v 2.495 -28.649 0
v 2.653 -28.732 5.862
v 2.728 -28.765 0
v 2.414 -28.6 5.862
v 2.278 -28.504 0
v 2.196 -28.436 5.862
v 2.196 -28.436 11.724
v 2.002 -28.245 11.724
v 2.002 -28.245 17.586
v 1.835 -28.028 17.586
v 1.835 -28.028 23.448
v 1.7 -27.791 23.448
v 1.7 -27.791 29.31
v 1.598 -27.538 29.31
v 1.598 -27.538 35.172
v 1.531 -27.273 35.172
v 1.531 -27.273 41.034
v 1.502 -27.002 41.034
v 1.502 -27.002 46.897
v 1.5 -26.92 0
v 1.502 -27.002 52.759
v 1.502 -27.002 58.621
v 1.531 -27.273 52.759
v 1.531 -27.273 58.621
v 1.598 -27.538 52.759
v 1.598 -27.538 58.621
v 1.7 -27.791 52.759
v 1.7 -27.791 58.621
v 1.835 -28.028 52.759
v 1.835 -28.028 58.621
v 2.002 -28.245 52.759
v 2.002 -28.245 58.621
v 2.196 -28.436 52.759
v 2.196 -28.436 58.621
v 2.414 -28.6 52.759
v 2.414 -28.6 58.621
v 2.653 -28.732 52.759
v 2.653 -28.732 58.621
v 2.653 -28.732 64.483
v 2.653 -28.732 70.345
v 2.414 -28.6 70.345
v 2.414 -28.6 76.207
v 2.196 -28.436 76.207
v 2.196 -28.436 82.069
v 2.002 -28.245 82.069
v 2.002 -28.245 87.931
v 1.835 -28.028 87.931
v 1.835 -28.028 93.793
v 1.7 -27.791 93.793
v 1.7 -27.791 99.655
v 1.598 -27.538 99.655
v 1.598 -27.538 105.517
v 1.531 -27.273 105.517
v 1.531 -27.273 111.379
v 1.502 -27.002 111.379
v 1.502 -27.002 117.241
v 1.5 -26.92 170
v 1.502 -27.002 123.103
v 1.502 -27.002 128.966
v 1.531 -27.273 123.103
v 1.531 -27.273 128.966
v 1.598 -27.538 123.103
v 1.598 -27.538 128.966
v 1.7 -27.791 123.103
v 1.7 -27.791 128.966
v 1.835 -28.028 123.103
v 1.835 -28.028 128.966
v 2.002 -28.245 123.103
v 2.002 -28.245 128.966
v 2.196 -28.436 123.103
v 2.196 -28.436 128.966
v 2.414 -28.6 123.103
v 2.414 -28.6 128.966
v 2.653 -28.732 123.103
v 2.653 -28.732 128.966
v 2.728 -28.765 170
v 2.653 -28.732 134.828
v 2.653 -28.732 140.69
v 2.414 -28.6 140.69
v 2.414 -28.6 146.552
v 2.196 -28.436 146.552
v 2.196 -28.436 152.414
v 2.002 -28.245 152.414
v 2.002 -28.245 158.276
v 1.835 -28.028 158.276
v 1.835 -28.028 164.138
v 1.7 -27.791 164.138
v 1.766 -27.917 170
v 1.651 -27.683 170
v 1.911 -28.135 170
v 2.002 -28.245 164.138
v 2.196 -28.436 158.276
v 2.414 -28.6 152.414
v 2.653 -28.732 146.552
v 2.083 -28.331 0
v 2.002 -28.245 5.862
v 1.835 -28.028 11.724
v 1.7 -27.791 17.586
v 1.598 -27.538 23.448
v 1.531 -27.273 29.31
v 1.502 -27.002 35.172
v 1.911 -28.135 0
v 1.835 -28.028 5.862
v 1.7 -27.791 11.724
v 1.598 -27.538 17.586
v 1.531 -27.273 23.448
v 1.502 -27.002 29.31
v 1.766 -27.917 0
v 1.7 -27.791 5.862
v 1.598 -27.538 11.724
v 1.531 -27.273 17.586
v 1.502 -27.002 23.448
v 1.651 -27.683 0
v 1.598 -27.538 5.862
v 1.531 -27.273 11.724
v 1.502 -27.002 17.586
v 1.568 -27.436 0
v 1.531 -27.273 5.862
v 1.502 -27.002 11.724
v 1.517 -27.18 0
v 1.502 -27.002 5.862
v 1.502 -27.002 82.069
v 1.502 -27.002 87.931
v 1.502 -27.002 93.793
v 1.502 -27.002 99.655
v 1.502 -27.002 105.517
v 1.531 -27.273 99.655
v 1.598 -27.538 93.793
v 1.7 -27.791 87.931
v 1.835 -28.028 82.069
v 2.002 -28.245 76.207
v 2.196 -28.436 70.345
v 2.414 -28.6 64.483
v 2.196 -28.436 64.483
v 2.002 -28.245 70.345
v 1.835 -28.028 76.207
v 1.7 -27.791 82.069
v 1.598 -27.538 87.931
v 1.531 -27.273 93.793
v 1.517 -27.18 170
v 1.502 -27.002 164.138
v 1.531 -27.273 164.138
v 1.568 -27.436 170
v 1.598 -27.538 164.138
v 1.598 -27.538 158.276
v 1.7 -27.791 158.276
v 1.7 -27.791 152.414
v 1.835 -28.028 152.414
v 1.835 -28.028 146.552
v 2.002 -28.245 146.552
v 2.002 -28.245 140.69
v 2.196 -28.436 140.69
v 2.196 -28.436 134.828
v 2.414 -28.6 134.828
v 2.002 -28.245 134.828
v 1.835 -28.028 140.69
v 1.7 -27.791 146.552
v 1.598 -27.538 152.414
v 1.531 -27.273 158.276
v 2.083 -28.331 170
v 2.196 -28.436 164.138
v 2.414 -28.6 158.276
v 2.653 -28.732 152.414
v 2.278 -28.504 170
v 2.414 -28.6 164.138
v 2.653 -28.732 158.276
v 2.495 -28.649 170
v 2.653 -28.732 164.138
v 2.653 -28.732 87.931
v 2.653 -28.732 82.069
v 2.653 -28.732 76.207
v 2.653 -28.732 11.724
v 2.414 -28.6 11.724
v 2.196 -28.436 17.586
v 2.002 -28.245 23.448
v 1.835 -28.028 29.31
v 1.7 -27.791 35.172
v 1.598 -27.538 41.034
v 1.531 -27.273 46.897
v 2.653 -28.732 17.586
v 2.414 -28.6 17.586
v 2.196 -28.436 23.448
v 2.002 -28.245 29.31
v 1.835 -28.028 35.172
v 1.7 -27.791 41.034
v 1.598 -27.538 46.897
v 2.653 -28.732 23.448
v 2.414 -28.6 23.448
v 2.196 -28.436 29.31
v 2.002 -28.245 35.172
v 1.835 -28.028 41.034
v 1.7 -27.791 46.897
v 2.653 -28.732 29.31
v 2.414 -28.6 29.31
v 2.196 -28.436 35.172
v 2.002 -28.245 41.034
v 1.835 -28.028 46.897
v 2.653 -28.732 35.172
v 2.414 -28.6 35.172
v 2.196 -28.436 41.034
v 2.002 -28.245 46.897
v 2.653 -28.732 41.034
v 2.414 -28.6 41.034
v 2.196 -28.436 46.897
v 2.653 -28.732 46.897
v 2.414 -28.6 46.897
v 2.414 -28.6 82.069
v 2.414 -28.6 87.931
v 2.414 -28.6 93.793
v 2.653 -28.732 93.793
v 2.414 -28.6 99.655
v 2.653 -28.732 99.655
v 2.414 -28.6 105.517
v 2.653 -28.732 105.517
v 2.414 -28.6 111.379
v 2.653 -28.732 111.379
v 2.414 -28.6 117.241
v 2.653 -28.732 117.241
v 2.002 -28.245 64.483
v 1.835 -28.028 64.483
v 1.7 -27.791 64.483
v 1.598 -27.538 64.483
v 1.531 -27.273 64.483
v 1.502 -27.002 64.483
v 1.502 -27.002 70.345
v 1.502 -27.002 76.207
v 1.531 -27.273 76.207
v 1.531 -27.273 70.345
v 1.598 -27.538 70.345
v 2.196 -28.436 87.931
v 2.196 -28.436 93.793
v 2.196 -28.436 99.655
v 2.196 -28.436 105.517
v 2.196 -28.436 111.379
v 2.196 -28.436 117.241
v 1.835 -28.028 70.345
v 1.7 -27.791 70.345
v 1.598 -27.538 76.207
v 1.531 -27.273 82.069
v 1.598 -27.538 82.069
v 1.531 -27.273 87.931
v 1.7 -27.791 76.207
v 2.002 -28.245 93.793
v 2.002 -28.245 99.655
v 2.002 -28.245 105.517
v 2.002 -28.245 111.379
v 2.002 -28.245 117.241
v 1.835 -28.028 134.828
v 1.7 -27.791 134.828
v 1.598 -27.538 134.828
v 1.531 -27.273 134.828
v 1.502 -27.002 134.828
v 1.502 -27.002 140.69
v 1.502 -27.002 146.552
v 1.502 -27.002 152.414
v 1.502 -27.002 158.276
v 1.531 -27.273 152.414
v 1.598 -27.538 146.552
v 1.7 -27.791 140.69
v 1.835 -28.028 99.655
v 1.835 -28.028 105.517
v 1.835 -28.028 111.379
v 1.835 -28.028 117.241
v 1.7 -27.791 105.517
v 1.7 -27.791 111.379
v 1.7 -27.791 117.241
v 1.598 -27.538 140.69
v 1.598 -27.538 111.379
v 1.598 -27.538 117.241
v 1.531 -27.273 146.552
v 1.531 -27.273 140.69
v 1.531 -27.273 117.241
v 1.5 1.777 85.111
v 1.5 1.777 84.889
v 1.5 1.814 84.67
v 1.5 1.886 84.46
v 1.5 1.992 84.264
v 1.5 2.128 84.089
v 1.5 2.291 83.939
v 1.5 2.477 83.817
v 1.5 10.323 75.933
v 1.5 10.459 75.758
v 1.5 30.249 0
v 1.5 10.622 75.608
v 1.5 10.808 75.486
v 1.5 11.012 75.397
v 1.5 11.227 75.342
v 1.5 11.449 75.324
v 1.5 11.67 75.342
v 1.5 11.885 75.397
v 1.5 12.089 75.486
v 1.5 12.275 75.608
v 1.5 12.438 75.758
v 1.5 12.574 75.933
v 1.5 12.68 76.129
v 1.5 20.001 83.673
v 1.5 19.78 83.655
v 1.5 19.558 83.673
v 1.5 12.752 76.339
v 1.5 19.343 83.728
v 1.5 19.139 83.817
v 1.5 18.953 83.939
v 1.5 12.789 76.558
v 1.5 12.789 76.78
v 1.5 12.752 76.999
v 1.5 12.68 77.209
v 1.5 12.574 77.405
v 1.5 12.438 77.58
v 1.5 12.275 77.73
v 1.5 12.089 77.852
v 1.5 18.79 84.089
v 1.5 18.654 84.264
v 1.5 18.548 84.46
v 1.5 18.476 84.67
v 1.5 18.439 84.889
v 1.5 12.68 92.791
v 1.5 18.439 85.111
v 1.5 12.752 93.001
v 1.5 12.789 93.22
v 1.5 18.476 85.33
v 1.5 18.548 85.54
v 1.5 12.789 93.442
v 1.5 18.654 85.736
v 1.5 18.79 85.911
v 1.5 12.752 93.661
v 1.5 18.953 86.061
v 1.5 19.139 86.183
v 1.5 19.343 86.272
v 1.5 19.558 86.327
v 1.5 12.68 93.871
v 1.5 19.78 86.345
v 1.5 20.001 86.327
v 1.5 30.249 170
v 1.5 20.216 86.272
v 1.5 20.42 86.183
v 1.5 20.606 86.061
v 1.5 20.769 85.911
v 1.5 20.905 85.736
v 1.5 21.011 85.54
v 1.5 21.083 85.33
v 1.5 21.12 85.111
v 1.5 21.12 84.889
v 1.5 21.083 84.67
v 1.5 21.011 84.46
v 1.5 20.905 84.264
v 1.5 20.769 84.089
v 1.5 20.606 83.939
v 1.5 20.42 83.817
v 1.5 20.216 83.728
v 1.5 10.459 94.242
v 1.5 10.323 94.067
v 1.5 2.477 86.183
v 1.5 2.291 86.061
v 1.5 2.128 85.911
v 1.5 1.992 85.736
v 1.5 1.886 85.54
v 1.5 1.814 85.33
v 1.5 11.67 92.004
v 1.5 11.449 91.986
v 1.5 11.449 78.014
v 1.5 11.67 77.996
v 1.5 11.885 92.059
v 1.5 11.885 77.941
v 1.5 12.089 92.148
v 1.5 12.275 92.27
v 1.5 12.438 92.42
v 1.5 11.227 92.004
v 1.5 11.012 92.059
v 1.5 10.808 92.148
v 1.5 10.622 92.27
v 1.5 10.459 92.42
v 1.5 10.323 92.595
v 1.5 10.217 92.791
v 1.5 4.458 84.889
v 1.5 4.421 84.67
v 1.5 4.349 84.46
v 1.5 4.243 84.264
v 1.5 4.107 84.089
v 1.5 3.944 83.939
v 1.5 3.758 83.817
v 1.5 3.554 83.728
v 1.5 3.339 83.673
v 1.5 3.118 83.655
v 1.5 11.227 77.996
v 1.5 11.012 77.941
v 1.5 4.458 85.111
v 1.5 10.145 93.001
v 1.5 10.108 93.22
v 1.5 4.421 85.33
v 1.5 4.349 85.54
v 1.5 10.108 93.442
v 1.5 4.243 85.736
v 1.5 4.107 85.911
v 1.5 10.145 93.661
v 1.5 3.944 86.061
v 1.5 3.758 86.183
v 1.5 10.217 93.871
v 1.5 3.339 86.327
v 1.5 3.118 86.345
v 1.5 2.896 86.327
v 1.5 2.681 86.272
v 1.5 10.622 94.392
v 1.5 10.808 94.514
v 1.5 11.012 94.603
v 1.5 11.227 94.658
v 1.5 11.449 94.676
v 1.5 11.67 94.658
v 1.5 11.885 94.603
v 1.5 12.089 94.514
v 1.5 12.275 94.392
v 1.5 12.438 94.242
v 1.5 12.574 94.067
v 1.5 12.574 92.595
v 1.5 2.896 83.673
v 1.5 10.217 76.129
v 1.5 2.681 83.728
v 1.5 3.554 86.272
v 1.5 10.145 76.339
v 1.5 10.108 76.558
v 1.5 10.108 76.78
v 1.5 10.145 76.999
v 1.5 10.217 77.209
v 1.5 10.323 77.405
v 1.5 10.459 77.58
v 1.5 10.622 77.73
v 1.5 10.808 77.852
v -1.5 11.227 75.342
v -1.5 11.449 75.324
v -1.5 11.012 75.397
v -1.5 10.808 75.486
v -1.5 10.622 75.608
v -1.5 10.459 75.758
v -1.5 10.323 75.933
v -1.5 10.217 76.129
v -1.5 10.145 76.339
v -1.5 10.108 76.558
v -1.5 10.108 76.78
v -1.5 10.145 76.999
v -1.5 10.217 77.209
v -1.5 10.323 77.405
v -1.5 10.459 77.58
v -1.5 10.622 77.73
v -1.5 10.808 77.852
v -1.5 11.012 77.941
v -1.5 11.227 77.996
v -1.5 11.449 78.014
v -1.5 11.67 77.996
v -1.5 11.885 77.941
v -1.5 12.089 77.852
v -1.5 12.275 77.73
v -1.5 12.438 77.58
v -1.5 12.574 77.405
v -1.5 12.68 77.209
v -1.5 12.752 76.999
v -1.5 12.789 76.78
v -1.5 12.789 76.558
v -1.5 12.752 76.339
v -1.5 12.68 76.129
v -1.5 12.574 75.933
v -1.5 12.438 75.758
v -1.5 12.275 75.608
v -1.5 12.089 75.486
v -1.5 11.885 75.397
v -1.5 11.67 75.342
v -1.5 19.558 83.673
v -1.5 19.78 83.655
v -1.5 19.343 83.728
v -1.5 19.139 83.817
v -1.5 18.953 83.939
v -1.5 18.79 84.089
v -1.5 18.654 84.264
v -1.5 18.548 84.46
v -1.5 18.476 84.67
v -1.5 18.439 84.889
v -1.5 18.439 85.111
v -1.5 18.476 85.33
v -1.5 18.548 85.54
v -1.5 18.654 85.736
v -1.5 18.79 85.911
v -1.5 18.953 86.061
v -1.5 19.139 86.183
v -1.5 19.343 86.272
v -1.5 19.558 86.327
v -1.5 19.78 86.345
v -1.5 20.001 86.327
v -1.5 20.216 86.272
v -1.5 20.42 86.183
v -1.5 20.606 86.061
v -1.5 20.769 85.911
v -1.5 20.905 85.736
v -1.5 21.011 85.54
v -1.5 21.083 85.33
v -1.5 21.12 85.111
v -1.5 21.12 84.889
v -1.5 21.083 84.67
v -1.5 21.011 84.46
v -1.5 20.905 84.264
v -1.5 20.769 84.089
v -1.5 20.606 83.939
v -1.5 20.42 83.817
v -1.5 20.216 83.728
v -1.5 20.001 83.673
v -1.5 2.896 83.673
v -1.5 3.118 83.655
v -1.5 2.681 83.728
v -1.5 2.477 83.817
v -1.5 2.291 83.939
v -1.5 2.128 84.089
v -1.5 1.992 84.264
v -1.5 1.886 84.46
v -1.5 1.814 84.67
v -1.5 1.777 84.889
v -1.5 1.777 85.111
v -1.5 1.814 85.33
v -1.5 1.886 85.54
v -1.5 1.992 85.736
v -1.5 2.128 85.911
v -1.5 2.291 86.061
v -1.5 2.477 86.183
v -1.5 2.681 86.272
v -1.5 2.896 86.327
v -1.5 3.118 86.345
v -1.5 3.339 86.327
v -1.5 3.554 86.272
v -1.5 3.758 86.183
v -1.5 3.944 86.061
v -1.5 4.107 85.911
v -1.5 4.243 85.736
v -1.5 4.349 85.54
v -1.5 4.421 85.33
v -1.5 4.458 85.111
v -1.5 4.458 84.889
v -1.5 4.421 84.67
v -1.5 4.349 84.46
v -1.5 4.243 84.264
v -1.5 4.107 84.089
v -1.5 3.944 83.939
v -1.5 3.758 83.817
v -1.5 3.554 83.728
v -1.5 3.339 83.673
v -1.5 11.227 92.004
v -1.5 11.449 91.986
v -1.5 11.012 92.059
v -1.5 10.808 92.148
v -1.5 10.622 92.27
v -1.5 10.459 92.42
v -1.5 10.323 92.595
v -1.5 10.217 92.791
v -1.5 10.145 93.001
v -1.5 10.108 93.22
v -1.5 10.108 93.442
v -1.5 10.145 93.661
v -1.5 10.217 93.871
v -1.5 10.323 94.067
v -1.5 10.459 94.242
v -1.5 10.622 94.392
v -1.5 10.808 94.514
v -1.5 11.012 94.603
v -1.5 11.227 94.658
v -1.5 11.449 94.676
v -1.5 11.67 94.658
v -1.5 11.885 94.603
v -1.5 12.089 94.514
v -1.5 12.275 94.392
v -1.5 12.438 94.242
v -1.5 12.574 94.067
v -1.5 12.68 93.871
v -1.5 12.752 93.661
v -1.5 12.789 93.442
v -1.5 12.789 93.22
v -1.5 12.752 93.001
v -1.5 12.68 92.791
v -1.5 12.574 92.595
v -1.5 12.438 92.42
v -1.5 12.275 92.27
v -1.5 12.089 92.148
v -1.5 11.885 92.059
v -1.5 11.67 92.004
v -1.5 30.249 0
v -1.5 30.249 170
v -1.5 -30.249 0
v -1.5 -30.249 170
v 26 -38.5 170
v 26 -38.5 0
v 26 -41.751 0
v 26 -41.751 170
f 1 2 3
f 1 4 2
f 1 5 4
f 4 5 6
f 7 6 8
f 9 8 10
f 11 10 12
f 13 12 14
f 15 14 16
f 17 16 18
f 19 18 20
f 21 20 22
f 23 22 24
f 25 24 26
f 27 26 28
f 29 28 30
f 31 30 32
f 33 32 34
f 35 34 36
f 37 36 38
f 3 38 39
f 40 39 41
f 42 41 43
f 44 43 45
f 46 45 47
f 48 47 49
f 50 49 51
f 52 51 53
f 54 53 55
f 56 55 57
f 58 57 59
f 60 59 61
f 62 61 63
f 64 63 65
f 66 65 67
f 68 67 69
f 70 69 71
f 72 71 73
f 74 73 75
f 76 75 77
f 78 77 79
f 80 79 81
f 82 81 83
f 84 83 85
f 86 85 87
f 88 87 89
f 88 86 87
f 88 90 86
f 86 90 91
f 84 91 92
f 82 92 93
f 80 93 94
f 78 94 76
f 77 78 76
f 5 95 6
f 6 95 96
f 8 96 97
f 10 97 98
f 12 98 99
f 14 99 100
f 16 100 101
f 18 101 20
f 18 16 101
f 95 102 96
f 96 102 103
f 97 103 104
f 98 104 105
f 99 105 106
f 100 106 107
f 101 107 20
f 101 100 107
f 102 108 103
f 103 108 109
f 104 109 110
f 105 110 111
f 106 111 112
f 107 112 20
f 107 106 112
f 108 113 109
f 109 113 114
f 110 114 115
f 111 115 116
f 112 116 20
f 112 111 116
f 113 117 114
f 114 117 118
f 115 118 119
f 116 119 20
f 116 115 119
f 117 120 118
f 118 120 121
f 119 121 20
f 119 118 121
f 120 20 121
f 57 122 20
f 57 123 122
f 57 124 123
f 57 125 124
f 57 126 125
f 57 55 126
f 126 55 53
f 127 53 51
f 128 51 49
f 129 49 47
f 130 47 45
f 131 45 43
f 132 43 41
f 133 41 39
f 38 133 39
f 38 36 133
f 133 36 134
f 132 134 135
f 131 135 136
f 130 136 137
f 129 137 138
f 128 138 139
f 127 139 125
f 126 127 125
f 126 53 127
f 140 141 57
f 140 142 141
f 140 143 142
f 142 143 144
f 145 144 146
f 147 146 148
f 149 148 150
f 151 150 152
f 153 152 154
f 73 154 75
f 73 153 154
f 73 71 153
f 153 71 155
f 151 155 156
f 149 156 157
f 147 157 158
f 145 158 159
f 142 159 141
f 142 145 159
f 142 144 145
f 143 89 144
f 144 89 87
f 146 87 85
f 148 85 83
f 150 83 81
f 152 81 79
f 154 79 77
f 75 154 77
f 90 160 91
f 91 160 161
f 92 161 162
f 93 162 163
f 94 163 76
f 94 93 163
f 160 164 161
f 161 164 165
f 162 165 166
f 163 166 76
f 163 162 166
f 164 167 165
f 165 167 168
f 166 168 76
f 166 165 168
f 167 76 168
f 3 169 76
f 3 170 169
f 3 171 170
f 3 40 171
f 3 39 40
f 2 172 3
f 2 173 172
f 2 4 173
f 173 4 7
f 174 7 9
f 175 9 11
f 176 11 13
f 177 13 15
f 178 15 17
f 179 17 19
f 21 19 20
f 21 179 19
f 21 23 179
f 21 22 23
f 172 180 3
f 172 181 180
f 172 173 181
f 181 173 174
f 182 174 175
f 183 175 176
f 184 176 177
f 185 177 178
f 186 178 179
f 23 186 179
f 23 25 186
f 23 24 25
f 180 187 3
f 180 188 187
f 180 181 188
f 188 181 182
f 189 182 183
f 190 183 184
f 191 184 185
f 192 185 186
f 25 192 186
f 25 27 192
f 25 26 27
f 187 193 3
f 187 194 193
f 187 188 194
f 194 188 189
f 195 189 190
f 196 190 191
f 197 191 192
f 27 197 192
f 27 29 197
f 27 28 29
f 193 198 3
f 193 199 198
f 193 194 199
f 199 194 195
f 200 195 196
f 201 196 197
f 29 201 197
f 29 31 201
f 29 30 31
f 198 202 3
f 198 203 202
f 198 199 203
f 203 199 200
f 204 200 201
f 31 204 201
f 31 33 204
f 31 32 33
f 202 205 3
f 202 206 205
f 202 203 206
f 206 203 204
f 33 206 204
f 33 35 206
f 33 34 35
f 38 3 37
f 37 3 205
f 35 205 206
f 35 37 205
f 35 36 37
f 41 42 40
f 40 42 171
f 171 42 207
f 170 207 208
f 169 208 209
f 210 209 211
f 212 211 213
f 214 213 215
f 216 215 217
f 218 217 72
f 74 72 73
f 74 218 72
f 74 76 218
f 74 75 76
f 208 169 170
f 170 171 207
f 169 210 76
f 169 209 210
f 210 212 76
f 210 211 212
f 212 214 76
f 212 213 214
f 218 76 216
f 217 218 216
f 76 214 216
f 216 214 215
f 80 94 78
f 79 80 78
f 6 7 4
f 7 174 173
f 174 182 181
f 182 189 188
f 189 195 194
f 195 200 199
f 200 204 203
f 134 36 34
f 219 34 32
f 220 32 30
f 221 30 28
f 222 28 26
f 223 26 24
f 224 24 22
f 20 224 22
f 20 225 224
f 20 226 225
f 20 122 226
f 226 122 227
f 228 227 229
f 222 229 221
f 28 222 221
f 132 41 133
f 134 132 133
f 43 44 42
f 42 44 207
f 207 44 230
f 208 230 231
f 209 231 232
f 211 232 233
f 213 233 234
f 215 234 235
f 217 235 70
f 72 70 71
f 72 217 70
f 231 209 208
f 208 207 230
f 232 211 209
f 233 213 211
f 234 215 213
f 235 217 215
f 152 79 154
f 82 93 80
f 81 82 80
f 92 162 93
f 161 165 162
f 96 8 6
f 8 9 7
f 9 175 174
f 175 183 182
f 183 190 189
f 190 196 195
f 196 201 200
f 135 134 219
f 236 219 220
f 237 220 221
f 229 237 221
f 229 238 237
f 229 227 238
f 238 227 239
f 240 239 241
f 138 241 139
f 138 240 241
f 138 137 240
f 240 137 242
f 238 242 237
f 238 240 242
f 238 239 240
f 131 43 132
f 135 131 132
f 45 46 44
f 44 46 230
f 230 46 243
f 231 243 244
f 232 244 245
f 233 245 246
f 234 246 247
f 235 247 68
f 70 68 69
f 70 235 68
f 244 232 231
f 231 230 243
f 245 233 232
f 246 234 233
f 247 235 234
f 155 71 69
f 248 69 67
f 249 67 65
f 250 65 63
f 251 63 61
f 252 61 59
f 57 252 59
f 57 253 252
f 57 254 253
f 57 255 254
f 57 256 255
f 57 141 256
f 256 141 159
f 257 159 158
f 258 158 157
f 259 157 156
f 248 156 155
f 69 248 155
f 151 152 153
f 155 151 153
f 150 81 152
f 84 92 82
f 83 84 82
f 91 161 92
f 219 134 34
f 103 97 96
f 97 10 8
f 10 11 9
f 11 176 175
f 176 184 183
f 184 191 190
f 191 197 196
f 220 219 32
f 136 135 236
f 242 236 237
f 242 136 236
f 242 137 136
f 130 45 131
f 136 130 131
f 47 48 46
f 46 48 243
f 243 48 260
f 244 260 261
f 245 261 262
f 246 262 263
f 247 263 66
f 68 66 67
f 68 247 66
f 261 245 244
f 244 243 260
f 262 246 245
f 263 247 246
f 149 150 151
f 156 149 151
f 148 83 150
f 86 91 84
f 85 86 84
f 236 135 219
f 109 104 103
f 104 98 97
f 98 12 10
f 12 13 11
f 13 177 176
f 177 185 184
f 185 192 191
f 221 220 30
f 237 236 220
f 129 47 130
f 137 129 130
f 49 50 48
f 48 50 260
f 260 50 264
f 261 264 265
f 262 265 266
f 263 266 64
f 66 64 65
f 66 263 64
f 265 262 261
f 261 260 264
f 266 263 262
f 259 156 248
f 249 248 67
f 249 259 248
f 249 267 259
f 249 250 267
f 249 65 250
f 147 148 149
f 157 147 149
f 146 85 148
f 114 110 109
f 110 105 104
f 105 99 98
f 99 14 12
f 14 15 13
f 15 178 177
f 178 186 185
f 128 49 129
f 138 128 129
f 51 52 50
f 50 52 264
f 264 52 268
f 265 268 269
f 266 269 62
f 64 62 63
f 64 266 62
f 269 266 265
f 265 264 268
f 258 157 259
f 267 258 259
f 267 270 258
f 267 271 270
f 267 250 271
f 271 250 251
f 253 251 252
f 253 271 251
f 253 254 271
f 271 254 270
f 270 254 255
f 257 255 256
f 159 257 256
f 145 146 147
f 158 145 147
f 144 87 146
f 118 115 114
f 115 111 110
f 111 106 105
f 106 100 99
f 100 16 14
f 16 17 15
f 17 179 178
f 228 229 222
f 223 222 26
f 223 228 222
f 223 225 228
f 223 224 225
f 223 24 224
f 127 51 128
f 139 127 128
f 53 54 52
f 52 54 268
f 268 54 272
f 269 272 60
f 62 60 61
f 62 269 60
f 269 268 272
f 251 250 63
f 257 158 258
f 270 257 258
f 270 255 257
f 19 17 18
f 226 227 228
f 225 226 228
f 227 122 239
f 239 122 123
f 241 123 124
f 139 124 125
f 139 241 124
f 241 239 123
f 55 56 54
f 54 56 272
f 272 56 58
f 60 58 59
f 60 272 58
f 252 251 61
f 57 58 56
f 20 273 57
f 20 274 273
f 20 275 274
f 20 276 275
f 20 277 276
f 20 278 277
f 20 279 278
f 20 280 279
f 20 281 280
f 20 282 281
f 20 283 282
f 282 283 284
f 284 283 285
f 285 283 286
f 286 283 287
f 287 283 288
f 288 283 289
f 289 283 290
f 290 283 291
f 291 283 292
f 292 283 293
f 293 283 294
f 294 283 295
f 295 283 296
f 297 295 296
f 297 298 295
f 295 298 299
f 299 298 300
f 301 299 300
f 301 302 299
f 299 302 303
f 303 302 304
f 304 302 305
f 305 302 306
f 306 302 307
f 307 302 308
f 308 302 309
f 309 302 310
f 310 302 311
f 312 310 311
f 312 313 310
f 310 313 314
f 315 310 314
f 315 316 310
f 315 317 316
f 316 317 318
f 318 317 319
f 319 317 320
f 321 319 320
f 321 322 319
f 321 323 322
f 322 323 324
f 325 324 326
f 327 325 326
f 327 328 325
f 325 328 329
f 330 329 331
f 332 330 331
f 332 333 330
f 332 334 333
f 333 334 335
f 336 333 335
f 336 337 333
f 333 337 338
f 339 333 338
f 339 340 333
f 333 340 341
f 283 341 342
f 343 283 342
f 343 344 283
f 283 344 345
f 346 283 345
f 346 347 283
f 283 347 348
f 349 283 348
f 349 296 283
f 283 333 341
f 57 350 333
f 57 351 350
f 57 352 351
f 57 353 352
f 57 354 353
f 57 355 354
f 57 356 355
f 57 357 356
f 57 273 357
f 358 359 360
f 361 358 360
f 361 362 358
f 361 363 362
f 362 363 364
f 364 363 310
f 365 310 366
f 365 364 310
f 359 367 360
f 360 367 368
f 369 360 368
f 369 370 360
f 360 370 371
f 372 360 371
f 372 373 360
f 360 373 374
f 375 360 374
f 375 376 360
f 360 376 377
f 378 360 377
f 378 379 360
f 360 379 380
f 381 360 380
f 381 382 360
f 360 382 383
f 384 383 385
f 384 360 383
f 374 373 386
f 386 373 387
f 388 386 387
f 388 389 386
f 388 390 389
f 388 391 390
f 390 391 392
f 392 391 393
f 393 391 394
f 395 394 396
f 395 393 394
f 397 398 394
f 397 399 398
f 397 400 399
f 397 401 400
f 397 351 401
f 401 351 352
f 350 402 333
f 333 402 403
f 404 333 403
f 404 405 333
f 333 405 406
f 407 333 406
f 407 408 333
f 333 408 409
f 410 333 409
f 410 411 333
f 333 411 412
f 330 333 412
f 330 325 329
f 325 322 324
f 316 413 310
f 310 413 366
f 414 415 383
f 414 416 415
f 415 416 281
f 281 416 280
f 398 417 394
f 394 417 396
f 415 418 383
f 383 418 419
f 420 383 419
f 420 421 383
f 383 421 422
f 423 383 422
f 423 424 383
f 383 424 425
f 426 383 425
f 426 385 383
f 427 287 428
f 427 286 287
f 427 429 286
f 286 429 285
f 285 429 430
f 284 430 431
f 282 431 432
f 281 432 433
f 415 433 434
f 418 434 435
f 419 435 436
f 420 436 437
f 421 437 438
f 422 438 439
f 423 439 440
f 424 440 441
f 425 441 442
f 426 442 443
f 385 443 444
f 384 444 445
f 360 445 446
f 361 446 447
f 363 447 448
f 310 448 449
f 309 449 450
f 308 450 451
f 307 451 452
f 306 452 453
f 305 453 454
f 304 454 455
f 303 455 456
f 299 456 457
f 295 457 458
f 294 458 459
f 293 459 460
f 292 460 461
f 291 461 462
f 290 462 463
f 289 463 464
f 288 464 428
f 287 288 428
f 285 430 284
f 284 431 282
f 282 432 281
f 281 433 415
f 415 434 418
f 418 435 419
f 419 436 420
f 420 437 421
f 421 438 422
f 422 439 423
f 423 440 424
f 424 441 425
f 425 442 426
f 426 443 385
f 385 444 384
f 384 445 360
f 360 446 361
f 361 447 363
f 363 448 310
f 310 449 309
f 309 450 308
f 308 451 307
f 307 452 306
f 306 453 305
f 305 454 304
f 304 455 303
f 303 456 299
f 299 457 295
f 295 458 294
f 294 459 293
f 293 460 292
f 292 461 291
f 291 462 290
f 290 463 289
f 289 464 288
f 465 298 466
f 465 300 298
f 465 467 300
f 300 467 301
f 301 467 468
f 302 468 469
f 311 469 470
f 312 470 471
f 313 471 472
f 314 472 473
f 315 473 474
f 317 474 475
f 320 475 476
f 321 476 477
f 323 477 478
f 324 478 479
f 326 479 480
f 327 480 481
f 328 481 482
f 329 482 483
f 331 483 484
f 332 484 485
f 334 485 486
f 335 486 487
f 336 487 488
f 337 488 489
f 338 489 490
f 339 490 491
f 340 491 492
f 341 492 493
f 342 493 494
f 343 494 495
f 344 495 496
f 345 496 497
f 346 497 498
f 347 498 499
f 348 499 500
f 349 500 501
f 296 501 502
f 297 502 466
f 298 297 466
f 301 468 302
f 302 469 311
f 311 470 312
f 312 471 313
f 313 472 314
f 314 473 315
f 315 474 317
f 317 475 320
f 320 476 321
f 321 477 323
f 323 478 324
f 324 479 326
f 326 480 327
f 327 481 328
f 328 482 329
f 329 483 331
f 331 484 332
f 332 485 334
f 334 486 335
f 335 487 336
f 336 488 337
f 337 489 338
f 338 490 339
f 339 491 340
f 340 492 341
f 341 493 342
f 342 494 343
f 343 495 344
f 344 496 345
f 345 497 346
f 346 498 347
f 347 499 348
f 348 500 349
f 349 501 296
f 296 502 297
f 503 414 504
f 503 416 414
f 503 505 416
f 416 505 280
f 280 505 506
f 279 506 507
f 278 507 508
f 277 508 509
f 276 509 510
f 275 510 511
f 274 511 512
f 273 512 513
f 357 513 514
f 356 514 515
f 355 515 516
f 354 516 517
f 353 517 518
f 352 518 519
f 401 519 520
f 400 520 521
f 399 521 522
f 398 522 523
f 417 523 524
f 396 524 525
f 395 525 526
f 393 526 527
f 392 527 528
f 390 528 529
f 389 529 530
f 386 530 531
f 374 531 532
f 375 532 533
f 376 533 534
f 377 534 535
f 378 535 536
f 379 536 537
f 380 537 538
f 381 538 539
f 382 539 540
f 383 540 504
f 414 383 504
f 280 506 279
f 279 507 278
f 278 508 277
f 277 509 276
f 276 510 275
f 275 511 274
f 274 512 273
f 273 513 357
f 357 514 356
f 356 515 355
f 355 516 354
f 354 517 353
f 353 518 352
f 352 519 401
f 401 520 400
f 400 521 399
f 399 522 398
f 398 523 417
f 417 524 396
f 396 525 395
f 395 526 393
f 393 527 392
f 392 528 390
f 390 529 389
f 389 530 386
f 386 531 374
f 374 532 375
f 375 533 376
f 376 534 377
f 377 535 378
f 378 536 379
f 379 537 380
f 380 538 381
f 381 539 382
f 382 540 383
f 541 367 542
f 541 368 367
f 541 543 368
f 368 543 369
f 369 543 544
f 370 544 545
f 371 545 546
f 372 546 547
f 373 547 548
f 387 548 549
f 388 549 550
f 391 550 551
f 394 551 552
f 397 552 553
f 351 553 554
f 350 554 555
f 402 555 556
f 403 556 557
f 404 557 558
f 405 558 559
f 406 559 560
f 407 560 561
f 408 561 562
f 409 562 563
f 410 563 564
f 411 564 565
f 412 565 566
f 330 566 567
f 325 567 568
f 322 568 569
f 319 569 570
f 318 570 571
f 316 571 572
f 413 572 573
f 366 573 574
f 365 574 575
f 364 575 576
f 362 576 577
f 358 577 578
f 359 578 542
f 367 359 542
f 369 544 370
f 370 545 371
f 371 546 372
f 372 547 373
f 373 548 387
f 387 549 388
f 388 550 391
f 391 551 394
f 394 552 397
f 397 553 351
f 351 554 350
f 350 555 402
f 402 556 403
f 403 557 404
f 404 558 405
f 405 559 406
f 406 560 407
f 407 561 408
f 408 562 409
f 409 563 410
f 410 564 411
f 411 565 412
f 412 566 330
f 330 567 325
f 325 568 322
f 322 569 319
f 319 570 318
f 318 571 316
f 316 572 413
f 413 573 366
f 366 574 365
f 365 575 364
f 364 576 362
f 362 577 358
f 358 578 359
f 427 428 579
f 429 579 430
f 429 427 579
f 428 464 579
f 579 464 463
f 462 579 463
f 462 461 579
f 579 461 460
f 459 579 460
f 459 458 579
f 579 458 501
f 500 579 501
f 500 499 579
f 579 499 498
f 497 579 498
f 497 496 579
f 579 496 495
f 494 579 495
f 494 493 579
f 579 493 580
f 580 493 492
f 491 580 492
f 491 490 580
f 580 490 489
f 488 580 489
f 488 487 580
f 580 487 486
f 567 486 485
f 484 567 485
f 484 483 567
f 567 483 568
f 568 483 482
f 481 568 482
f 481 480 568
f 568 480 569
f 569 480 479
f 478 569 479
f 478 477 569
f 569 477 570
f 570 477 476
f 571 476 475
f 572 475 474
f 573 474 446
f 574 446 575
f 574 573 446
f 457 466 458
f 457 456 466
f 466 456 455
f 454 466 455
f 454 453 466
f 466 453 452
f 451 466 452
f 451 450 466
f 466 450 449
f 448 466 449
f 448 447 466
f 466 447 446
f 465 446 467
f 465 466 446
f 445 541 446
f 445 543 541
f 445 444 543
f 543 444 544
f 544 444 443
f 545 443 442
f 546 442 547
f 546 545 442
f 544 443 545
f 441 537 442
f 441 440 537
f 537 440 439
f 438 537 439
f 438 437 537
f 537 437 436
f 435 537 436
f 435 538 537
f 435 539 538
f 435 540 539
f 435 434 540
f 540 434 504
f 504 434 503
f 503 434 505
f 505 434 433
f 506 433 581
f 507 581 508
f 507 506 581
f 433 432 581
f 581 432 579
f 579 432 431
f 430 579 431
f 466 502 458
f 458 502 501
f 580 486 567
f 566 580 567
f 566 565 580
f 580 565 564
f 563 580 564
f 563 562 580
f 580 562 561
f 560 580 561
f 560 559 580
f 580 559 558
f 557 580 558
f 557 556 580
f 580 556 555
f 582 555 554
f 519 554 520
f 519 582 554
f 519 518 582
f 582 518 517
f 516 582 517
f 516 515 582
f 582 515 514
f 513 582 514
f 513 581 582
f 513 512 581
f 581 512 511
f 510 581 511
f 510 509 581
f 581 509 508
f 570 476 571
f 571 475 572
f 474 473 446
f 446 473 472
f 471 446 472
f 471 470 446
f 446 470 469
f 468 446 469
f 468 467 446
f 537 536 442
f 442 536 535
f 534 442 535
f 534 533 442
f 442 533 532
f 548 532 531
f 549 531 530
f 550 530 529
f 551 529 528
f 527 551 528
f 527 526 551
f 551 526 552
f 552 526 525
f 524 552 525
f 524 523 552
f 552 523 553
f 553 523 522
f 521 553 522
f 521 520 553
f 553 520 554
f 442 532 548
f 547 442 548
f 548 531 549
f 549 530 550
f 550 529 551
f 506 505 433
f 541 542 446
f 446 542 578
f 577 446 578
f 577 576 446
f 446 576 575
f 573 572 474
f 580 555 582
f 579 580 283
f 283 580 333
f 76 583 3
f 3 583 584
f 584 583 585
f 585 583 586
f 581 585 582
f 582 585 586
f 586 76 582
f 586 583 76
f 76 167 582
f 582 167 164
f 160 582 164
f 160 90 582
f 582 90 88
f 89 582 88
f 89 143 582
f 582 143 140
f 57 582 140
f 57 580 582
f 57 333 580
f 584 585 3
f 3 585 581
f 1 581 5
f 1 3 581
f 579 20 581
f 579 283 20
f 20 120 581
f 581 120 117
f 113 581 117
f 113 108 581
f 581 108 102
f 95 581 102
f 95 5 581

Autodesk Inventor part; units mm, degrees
ref_plane "YZ Plane" through (0, 0, 0) normal (1, 0, 0) x (0, 1, 0)
ref_plane "XZ Plane" through (0, 0, 0) normal (0, 1, 0) x (-1, 0, 0)
ref_plane "XY Plane" through (0, 0, 0) normal (0, 0, 1) x (1, 0, 0)
sketch "Sketch3" plane through (0, 0, 0) normal (0, 0, 1) x (1, 0, 0)
  line L0 (-1.5, 30.2485) -> (1.5, 30.2485)
  line L1 (1.5, 30.2485) -> (1.5, -30.2485)
  line L2 (1.5, -30.2485) -> (-1.5, -30.2485)
  line L3 (-1.5, -30.2485) -> (-1.5, 30.2485)
  line L4 (1.5, -28.2515) -> (26, -38.4996)
  line L5 (26, -38.4996) -> (26, -41.7515)
  line L6 (26, -41.7515) -> (-1.5, -30.2485)
  point P0 (0, 0)
  point P1 (0, 30.2485)
  point P2 (1.5, 0)
  dimension "d20" = 3
  dimension "d26" = 24.5
  dimension "d39" = 3
  dimension "d41" = 58.5
  dimension "d43" = 72
extrude "Extrusion3" add sketch "Sketch3" along normal blind 170
sketch "Sketch4" plane through (1.5, -28.2515, 0) normal (1, 0, 0) x (0, 0, -1)
  circle A0 centre (-85, 48.031) radius 1.345
  circle A1 centre (-85, 31.369) radius 1.345
  circle A2 centre (-76.669, 39.7) radius 1.345
  circle A3 centre (-93.331, 39.7) radius 1.345
  line L0 (0, 58.5) -> (0, 0) projected
  line L1 (0, 58.5) -> (-170, 58.5) projected
  line L2 (-170, 0) -> (-170, 58.5) projected
  line L3 (0, 0) -> (-170, 0) projected
  point P0 (-85, 58.5)
  dimension "d28" = 2.69
  dimension "d30" = 8.331
  dimension "d31" = 8.331
  dimension "d32" = 8.331
  dimension "d33" = 8.331
  dimension "d34" = 16.662
  dimension "d35" = 16.662
  dimension "d36" = 10.469
extrude "Extrusion4" cut sketch "Sketch4" against normal through all contours A0 | A1 | A2 | A3
fillet "Fillet1" radius 2 1 edges at (1.5, -28.2515, 85)
equation "\"d31\" = d30"
equation "\"d32\" = d30"
equation "\"d33\" = d30"
equation "\"d35\" = d34"
properties part number "CowCatcherRearShort"
